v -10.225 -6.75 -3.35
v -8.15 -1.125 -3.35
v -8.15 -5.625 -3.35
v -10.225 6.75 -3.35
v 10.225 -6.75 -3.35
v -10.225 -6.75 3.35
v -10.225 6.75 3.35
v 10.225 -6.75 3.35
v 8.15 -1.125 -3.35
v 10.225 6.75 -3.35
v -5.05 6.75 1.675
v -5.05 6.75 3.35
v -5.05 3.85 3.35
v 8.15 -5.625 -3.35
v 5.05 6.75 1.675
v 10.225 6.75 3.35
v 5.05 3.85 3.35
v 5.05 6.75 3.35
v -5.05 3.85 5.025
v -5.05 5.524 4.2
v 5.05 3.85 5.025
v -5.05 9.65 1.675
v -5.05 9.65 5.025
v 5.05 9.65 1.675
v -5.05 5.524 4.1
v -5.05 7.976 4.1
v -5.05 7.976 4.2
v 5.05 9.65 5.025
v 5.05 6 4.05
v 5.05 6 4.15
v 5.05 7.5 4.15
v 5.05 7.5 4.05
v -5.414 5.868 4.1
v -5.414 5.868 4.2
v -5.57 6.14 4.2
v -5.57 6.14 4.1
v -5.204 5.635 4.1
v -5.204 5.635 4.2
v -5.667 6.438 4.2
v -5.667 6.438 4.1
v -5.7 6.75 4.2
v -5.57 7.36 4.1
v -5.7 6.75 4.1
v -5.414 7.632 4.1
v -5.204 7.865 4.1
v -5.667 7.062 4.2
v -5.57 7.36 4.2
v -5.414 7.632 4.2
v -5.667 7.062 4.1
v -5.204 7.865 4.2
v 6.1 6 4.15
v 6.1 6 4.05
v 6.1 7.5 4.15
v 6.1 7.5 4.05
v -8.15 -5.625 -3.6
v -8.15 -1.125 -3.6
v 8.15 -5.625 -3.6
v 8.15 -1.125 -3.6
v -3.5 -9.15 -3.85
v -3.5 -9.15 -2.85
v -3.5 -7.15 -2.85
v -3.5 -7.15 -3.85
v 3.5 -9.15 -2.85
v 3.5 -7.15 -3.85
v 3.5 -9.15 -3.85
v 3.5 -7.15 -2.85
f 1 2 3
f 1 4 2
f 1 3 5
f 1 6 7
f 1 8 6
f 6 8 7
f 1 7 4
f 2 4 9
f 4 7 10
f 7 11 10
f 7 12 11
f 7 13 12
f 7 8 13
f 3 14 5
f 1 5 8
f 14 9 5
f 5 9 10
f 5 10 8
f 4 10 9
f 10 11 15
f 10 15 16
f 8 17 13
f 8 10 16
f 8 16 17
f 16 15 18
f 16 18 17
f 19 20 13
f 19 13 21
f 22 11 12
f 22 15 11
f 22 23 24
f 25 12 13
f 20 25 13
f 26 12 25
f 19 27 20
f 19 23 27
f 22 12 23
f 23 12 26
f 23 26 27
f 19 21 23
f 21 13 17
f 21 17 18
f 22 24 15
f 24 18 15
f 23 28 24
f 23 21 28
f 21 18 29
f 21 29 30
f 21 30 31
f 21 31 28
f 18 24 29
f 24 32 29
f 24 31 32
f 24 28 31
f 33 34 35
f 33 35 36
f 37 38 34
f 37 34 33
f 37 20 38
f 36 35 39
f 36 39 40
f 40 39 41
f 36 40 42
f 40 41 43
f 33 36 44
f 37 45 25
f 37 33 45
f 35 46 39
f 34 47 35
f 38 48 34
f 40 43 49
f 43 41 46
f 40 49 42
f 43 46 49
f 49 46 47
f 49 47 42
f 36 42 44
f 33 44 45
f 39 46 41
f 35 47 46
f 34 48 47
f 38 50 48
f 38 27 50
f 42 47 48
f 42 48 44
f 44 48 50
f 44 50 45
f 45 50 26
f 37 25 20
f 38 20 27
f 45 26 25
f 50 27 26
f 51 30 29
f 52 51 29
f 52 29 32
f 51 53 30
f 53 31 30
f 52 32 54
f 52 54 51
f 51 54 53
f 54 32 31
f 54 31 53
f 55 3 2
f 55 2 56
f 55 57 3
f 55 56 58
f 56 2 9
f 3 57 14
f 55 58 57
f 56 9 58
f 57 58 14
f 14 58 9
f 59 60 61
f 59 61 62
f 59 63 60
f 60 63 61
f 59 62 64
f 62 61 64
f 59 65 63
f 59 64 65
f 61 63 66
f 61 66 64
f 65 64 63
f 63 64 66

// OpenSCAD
module gp2y0d413k0f() {

  // 本体ケース (Carbonic ABS)
  cube([20.45, 13.5, 6.7], center = true);

  // レンズケース突起
  translate([0, 6.75, 3.35])
    cube([10.1, 5.8, 3.35], center = true);

  // 発光部レンズ (円形)
  translate([-4.2, 6.75, 3.35 + 1.5/2])
    cylinder(r=1.5, h=0.1, $fn=30);

  // 受光部レンズ (矩形)
  translate([4.2, 6.75, 3.35 + 1.5/2])
    cube([3.8, 1.5, 0.1], center = true);

  // PWB
  translate([0, -6.75/2, -3.35])
    cube([16.3, 4.5, 0.5], center = true);

  // コネクタ (簡易表現)
  translate([0, -8.15, -3.35])
    cube([7, 2, 1], center = true);
}

gp2y0d413k0f();
